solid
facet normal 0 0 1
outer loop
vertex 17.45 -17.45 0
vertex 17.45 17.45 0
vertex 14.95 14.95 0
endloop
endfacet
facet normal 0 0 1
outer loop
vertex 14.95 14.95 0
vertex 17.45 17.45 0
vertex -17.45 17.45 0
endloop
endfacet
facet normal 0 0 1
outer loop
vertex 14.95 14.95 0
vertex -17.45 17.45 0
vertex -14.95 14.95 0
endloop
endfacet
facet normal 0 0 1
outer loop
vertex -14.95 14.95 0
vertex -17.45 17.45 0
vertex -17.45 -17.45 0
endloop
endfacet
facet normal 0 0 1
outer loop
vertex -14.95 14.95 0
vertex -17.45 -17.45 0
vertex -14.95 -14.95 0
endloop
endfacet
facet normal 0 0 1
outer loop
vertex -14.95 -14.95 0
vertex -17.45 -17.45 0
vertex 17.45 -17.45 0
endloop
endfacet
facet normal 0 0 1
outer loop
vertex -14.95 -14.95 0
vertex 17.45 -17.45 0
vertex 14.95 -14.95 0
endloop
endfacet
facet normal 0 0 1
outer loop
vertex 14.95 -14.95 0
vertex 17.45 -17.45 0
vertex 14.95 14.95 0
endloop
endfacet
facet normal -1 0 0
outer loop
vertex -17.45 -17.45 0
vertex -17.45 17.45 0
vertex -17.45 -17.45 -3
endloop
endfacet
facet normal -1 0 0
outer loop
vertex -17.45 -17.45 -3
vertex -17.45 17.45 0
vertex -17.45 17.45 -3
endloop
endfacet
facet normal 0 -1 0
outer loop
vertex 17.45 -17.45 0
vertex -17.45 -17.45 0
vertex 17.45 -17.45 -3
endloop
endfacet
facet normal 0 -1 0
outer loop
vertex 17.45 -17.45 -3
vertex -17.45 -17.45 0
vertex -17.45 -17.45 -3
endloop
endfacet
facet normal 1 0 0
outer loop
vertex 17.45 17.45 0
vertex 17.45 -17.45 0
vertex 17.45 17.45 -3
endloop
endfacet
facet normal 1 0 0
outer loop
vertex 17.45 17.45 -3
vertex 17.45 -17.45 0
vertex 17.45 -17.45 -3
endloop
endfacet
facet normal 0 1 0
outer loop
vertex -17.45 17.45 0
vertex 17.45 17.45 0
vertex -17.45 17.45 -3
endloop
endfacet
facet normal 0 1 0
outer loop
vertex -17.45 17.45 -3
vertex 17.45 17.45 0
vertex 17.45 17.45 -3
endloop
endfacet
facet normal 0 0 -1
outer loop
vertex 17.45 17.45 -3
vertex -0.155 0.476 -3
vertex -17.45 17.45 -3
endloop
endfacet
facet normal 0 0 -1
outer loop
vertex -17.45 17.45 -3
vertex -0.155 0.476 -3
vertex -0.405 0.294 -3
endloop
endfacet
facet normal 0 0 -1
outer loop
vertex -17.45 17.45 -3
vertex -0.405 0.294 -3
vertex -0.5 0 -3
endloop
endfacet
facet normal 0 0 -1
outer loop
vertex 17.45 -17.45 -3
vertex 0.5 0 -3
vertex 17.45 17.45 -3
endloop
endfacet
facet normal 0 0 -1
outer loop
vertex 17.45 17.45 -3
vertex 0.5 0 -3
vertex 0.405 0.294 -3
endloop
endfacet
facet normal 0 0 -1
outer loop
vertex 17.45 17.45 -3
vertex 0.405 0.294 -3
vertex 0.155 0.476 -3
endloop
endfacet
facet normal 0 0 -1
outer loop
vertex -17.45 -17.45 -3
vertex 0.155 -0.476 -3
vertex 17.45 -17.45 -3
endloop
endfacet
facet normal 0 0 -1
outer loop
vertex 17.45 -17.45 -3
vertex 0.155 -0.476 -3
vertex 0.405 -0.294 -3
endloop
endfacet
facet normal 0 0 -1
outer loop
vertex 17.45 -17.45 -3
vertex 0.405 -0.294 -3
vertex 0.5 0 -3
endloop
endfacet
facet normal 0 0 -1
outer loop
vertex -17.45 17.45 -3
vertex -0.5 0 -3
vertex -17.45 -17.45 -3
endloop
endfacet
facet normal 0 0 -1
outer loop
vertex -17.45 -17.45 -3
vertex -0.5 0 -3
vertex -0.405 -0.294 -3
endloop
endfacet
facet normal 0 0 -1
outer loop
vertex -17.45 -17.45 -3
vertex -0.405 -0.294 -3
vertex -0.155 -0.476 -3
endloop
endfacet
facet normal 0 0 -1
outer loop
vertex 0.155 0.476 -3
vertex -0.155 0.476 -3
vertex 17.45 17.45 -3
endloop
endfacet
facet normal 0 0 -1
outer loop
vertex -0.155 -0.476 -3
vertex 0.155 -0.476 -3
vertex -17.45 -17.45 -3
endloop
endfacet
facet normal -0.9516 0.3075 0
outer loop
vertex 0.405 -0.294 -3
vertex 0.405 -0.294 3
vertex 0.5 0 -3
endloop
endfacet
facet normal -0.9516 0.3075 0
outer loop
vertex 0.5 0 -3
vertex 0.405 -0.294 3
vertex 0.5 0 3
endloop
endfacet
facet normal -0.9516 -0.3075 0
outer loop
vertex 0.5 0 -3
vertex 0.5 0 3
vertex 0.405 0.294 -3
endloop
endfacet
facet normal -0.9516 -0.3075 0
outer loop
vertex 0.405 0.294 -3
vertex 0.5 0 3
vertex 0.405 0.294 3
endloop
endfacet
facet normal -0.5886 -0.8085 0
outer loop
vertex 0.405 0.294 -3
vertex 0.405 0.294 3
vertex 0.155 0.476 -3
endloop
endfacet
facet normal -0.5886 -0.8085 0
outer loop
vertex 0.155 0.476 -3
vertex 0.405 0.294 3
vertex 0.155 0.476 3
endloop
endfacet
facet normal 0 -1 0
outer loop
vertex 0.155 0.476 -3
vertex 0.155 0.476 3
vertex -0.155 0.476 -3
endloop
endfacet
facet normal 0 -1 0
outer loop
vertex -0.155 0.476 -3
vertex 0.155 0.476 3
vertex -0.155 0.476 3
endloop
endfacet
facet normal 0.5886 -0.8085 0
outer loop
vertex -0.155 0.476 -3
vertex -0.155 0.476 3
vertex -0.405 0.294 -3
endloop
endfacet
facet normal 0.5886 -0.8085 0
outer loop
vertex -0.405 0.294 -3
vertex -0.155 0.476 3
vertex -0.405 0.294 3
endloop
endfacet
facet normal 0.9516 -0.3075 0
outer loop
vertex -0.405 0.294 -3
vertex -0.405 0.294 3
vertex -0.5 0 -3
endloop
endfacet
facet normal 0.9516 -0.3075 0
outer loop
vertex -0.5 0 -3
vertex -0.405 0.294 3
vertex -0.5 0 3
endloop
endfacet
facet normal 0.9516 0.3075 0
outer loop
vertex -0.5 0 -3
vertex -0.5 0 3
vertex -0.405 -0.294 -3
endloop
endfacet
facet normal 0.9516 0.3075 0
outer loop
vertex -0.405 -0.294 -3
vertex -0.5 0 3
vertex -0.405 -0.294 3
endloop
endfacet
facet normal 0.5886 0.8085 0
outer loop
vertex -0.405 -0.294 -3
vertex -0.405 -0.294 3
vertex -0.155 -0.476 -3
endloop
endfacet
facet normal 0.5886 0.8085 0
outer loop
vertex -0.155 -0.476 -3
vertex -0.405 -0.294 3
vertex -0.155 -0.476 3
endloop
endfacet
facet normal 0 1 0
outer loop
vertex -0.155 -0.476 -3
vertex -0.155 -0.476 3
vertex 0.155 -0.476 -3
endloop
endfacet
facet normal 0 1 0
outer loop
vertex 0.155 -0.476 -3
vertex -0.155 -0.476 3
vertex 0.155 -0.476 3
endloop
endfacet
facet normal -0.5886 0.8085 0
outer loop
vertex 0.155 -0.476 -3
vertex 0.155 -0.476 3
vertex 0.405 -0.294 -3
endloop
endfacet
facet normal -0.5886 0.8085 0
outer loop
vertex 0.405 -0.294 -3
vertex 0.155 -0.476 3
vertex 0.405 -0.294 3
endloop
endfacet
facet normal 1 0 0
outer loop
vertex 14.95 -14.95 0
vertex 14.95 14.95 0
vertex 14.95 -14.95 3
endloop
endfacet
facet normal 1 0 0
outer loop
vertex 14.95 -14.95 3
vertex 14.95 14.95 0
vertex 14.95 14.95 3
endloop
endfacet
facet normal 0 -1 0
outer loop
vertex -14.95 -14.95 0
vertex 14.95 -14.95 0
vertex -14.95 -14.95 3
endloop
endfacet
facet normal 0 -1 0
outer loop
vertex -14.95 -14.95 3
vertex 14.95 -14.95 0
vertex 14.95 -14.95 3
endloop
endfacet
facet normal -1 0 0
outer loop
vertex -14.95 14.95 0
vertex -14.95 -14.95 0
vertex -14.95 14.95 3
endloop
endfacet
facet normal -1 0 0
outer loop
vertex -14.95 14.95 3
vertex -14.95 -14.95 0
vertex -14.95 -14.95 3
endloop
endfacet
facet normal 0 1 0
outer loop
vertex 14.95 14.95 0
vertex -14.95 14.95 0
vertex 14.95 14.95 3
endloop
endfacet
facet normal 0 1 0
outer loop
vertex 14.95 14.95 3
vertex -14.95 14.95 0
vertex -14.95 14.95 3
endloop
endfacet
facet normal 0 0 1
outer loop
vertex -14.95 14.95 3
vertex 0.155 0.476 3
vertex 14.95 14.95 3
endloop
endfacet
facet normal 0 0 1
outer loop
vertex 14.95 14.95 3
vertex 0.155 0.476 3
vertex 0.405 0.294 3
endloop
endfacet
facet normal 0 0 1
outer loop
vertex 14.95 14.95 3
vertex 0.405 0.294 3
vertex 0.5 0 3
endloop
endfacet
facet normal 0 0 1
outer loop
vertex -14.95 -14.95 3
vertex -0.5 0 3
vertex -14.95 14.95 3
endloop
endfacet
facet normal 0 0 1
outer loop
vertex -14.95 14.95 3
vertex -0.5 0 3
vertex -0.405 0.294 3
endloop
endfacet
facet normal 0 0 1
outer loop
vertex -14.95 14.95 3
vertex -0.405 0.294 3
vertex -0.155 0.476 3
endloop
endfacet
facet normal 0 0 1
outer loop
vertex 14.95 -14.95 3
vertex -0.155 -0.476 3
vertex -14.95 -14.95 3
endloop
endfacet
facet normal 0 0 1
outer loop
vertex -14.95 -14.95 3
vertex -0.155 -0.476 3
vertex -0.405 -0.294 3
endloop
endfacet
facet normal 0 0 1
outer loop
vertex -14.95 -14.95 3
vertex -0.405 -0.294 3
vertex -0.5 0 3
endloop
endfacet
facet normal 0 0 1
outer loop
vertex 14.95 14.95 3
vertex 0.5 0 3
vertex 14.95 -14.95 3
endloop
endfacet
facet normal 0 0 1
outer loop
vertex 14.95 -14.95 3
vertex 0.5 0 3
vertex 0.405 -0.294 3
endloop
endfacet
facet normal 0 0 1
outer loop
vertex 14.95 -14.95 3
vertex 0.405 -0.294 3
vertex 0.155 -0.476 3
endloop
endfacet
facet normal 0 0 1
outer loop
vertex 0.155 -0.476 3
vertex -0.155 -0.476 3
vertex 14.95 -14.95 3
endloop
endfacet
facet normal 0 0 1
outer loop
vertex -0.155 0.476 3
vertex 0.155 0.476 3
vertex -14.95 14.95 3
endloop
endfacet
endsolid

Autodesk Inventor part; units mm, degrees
ref_plane "YZ Plane" through (0, 0, 0) normal (1, 0, 0) x (0, 1, 0)
ref_plane "XZ Plane" through (0, 0, 0) normal (0, 1, 0) x (-1, 0, 0)
ref_plane "XY Plane" through (0, 0, 0) normal (0, 0, 1) x (1, 0, 0)
sketch "Sketch1" plane through (0, 0, 0) normal (0, 0, 1) x (1, 0, 0)
  line L0 (14.95, -14.95) -> (-14.95, -14.95)
  line L1 (-14.95, -14.95) -> (-14.95, 14.95)
  line L2 (-14.95, 14.95) -> (14.95, 14.95)
  line L3 (14.95, 14.95) -> (14.95, -14.95)
  line L4 (14.95, -14.95) -> (-14.95, 14.95) construction
  line L5 (-14.95, -14.95) -> (14.95, 14.95) construction
  circle A0 centre (0, 0) radius 0.5
  line L6 (17.45, -17.45) -> (-17.45, -17.45)
  line L7 (-17.45, -17.45) -> (-17.45, 17.45)
  line L8 (-17.45, 17.45) -> (17.45, 17.45)
  line L9 (17.45, 17.45) -> (17.45, -17.45)
  line L10 (17.45, -17.45) -> (-17.45, 17.45) construction
  line L11 (-17.45, -17.45) -> (17.45, 17.45) construction
  dimension "d2" = 29.9
  dimension "d3" = 29.9
  dimension "d4" = 1
  dimension "d5" = 34.9
  dimension "d6" = 34.9
extrude "Extrusion1" add sketch "Sketch1" along normal blind 3 contours L0 L1 L2 L3
extrude "Extrusion2" add sketch "Sketch1" against normal blind 3 contours L0 L1 L2 L3 | L6 L7 L8 L9
properties part number "Large-cuvette-cap-30mm"
